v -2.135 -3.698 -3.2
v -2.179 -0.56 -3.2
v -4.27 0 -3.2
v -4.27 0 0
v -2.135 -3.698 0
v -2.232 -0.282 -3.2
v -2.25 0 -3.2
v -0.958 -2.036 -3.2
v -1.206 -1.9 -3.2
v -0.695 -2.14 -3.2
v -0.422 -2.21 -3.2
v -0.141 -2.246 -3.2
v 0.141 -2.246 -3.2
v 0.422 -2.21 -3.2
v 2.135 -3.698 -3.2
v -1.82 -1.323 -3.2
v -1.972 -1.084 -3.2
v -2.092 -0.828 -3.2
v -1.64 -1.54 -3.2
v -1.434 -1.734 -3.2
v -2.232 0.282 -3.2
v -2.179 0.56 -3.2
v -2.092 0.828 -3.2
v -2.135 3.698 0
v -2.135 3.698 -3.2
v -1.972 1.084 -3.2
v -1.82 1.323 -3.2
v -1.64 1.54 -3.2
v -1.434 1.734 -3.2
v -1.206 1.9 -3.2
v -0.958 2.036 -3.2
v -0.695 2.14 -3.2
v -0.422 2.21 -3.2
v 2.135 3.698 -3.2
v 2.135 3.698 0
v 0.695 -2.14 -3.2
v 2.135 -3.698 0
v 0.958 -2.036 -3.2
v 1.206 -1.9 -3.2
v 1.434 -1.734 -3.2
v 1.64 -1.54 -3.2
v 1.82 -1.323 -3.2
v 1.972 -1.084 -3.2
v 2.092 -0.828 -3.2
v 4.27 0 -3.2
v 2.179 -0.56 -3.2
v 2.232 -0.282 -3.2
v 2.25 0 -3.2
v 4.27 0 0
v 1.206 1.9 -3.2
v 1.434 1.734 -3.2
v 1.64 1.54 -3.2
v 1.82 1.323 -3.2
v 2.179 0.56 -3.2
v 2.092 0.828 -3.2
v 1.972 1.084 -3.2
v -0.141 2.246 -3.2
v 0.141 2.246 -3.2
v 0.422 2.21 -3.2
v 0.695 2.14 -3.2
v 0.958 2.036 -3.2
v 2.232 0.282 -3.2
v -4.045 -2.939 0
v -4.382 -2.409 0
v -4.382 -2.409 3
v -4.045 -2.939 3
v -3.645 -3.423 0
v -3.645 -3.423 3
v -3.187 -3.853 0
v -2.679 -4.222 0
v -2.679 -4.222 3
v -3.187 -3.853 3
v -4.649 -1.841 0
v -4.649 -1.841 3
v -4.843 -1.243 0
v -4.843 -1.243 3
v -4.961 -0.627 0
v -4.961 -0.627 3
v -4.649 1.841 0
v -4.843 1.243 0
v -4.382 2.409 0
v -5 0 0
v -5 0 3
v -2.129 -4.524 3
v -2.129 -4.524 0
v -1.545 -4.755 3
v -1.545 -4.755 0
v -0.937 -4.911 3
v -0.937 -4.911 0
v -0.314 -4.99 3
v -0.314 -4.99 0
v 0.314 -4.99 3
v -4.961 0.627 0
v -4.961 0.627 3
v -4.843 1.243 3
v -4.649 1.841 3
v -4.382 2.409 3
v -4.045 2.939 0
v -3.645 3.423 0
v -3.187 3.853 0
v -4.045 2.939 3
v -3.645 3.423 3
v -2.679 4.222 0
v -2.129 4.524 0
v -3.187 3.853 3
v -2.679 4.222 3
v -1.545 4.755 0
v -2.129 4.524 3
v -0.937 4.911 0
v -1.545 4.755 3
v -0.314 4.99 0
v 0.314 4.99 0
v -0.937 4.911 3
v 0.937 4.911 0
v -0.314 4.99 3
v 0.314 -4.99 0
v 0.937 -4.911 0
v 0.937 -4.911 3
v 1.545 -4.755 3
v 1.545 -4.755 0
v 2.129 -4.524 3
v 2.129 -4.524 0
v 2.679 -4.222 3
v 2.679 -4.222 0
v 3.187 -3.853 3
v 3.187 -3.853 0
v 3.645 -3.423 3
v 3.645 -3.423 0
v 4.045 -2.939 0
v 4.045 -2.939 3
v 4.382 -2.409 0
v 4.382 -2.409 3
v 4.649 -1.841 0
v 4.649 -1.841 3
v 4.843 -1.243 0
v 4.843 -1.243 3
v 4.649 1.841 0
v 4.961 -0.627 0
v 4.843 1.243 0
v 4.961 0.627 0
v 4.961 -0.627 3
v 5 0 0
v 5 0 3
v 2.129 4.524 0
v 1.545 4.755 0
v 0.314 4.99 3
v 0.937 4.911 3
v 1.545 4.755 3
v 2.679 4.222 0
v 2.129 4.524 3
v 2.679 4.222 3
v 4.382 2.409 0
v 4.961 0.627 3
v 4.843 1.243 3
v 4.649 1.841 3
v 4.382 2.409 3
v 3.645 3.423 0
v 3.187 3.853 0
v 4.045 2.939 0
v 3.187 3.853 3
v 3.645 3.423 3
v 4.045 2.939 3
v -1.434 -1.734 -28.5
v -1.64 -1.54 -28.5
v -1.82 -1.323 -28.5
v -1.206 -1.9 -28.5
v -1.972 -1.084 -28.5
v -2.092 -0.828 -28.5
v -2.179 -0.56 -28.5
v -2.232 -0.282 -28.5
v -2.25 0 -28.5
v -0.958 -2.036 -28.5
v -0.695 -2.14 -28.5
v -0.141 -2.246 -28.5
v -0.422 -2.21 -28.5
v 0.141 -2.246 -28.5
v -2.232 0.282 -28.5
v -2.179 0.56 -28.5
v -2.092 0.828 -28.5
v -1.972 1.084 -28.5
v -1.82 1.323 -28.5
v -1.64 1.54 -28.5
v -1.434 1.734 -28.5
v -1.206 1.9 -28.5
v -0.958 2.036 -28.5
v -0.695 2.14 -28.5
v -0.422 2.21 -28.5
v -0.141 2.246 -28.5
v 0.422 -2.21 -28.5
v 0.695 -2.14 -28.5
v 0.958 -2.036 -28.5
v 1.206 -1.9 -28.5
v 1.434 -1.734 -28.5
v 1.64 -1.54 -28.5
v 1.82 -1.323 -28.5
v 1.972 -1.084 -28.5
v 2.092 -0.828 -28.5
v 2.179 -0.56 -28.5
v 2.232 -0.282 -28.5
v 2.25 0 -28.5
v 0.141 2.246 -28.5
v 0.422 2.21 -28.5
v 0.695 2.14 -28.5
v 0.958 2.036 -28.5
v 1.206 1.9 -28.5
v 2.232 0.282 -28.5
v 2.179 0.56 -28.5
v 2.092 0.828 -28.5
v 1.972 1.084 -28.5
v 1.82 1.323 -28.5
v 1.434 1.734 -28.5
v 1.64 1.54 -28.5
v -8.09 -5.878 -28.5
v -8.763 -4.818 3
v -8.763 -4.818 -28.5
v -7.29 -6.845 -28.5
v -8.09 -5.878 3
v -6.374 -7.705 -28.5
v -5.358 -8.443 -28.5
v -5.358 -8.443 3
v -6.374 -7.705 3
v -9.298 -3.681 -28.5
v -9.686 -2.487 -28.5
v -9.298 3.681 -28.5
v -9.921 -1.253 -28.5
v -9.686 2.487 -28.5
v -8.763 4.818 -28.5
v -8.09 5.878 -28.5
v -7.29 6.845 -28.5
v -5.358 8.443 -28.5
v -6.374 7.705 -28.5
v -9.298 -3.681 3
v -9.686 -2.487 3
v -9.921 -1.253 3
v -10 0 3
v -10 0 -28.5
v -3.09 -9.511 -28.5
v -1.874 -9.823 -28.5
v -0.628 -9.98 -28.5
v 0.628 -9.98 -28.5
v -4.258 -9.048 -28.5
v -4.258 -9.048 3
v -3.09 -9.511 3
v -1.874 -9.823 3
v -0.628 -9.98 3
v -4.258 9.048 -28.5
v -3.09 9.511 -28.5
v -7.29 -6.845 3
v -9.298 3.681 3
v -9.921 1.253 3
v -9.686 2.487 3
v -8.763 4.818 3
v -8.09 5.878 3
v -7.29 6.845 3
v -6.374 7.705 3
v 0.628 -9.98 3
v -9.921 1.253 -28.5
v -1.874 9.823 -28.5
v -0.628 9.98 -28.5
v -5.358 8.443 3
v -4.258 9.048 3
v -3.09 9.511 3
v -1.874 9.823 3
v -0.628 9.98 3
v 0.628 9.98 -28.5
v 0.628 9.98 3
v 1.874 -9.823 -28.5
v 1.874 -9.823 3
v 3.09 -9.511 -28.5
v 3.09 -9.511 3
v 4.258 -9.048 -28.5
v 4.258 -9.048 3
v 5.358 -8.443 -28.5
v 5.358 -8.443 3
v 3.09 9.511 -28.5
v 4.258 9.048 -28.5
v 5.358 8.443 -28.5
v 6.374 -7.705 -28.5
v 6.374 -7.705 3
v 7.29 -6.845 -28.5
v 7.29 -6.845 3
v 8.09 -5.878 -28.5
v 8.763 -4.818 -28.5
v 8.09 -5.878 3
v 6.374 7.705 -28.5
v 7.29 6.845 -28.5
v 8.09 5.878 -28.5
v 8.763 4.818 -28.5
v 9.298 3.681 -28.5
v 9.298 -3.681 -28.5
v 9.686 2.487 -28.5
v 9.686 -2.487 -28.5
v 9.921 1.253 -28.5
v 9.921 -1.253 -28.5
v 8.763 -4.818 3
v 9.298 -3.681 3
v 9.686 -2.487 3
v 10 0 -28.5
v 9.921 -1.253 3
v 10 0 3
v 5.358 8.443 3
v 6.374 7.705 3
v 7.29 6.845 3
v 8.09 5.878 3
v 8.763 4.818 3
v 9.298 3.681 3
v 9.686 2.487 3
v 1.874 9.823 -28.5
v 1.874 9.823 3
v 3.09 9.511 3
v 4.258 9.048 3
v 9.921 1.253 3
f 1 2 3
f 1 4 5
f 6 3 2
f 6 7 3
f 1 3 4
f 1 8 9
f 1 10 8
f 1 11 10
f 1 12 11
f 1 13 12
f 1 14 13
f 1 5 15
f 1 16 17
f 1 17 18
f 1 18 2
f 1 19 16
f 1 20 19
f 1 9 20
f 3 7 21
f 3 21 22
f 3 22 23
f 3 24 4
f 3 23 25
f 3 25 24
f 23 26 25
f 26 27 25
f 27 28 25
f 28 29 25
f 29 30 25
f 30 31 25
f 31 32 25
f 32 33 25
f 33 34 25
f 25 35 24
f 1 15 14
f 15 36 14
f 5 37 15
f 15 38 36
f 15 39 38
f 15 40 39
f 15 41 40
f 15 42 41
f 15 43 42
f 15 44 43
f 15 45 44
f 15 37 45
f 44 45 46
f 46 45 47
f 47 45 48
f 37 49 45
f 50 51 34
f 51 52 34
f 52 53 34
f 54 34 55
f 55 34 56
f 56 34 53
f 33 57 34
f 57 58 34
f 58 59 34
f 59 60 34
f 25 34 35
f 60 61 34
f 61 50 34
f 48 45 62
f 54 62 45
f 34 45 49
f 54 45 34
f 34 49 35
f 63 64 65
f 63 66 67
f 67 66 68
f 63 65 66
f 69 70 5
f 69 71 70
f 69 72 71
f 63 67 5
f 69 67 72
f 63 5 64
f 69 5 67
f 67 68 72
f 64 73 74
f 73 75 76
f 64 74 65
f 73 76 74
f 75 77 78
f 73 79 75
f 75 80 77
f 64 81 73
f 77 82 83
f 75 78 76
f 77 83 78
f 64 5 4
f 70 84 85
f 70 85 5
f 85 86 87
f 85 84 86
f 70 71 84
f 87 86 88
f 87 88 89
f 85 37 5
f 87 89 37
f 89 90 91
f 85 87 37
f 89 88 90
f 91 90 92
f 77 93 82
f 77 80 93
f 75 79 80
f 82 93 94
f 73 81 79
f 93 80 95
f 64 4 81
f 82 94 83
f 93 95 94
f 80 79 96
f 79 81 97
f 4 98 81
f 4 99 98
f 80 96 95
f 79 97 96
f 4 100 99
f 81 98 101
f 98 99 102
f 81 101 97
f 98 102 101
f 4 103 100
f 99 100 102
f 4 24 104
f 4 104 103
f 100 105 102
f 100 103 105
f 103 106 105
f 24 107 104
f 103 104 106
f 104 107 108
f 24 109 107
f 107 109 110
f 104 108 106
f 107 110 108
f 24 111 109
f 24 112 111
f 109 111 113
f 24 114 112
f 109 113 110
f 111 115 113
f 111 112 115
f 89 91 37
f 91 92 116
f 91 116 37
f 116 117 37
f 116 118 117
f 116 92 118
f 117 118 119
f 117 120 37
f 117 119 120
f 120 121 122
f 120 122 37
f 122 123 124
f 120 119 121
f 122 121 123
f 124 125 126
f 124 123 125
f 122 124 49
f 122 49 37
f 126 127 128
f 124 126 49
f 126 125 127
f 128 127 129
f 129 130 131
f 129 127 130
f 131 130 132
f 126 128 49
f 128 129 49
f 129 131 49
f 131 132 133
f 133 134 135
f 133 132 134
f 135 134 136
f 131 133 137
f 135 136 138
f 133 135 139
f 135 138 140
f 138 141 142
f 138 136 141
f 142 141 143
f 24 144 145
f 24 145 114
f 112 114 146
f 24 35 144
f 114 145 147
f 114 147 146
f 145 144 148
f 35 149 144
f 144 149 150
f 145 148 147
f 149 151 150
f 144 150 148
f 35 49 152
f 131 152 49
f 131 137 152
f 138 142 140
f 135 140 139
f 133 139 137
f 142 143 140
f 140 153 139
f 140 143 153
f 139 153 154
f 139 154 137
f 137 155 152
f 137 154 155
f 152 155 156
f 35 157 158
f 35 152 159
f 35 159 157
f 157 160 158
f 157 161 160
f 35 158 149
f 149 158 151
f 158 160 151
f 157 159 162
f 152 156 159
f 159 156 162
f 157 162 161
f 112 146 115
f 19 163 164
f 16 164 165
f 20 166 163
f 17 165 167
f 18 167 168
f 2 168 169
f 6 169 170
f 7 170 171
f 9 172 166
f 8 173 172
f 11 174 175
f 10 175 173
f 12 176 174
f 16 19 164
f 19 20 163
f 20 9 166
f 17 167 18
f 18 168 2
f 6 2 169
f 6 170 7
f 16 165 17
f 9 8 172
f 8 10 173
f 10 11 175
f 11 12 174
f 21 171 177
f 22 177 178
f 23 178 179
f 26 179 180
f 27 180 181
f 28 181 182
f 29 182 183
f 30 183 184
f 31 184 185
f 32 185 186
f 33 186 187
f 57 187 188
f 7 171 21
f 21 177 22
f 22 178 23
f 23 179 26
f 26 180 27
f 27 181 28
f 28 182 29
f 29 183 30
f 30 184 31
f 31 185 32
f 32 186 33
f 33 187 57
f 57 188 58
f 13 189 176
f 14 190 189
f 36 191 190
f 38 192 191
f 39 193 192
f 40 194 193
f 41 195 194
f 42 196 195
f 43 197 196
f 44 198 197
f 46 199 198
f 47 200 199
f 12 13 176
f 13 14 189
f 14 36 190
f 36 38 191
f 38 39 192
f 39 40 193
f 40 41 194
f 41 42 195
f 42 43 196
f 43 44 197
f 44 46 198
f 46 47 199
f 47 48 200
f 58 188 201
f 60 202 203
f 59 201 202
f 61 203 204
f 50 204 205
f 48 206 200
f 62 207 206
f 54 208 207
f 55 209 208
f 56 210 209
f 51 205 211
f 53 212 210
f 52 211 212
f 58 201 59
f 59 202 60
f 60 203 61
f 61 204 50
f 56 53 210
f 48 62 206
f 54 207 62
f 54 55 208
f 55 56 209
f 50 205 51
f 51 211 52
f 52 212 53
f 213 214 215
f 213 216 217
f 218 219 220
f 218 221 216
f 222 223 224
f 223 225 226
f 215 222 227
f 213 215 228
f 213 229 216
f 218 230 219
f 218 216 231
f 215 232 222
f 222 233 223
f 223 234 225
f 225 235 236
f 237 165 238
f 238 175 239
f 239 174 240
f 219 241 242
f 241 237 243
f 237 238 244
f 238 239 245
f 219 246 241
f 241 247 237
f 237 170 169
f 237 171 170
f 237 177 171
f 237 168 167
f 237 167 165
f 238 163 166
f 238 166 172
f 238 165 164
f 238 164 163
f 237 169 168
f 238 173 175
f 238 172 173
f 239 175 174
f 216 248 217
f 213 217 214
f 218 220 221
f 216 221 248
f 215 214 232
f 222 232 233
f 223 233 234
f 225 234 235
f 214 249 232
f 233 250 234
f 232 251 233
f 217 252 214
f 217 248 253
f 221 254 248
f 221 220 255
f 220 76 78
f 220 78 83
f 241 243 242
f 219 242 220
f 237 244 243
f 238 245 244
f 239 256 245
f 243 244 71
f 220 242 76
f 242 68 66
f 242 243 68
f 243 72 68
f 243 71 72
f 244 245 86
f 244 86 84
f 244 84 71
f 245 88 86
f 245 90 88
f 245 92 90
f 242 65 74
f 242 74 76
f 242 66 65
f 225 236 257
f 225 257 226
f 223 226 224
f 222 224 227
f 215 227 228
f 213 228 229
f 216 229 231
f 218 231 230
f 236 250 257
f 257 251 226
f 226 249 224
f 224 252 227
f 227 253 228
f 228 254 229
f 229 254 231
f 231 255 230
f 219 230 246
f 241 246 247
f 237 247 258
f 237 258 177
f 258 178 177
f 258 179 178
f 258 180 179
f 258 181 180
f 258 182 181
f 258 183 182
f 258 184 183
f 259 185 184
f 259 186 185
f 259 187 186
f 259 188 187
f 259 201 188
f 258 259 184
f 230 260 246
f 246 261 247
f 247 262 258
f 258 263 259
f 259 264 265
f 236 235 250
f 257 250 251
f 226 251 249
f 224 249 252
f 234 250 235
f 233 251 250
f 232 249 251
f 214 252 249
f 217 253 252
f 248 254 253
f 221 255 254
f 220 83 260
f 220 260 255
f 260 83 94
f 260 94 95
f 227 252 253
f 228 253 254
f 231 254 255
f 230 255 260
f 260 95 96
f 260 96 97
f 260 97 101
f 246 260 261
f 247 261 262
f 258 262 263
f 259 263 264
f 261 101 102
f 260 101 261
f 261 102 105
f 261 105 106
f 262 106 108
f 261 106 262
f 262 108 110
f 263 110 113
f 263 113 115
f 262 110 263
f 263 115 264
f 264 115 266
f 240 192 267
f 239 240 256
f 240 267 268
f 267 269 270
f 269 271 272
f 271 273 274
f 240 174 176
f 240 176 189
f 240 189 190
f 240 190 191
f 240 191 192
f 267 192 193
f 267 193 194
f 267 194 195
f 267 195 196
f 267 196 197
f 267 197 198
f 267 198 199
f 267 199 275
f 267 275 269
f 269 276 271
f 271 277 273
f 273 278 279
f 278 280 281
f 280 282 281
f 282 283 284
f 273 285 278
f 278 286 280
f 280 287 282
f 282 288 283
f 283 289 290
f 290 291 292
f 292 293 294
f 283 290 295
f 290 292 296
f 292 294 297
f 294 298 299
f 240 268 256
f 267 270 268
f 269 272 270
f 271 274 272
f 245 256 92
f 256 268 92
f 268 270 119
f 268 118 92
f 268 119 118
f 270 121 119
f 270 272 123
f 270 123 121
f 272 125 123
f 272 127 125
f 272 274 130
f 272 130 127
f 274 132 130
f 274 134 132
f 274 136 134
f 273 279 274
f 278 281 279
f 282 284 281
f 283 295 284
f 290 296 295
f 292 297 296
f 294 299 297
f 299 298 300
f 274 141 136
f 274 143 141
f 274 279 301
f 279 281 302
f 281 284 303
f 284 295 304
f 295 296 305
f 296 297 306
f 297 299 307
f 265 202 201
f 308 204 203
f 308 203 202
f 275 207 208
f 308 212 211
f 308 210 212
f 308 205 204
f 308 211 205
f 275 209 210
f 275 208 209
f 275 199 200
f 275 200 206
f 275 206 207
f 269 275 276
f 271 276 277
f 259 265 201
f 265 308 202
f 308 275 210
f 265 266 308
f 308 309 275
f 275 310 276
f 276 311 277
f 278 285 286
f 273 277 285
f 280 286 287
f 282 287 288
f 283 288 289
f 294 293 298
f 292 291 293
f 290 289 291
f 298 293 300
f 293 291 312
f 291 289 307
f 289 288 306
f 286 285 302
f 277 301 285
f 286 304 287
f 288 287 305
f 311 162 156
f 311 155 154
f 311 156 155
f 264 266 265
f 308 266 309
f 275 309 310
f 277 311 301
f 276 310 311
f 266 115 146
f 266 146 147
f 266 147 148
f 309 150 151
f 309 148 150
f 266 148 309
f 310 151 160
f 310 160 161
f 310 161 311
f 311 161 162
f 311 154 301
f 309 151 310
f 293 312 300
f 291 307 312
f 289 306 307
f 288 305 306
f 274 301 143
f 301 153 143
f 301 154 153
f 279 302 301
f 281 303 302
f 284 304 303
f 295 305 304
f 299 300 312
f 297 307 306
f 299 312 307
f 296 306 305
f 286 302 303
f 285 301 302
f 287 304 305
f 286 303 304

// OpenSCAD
$fn = 50;

difference() {
	union() {
		translate(v = [0, 0, -28.5]) {
			cylinder(h = 31.5, r = 10.0);
		}
	}
	union() {
		translate(v = [0, 0, 0]) {
			rotate(a = [0, 0, 0]) {
				difference() {
					union() {
						translate(v = [0, 0, -3.2]) {
							linear_extrude(height = 3.2) {
								polygon(points = [[4.2698, 0.0], [2.1349000000000005, 3.697755269078796], [-2.134899999999999, 3.6977552690787965], [-4.2698, 5.228996902999369e-16], [-2.134900000000002, -3.6977552690787956], [2.1348999999999974, -3.697755269078798]]);
							}
						}
					}
					union();
				}
			}
		}
		#cylinder(h = 3, r = 5.0);
		#translate(v = [0, 0, -100.0]) {
			cylinder(h = 200, r = 2.25);
		}
	}
}
